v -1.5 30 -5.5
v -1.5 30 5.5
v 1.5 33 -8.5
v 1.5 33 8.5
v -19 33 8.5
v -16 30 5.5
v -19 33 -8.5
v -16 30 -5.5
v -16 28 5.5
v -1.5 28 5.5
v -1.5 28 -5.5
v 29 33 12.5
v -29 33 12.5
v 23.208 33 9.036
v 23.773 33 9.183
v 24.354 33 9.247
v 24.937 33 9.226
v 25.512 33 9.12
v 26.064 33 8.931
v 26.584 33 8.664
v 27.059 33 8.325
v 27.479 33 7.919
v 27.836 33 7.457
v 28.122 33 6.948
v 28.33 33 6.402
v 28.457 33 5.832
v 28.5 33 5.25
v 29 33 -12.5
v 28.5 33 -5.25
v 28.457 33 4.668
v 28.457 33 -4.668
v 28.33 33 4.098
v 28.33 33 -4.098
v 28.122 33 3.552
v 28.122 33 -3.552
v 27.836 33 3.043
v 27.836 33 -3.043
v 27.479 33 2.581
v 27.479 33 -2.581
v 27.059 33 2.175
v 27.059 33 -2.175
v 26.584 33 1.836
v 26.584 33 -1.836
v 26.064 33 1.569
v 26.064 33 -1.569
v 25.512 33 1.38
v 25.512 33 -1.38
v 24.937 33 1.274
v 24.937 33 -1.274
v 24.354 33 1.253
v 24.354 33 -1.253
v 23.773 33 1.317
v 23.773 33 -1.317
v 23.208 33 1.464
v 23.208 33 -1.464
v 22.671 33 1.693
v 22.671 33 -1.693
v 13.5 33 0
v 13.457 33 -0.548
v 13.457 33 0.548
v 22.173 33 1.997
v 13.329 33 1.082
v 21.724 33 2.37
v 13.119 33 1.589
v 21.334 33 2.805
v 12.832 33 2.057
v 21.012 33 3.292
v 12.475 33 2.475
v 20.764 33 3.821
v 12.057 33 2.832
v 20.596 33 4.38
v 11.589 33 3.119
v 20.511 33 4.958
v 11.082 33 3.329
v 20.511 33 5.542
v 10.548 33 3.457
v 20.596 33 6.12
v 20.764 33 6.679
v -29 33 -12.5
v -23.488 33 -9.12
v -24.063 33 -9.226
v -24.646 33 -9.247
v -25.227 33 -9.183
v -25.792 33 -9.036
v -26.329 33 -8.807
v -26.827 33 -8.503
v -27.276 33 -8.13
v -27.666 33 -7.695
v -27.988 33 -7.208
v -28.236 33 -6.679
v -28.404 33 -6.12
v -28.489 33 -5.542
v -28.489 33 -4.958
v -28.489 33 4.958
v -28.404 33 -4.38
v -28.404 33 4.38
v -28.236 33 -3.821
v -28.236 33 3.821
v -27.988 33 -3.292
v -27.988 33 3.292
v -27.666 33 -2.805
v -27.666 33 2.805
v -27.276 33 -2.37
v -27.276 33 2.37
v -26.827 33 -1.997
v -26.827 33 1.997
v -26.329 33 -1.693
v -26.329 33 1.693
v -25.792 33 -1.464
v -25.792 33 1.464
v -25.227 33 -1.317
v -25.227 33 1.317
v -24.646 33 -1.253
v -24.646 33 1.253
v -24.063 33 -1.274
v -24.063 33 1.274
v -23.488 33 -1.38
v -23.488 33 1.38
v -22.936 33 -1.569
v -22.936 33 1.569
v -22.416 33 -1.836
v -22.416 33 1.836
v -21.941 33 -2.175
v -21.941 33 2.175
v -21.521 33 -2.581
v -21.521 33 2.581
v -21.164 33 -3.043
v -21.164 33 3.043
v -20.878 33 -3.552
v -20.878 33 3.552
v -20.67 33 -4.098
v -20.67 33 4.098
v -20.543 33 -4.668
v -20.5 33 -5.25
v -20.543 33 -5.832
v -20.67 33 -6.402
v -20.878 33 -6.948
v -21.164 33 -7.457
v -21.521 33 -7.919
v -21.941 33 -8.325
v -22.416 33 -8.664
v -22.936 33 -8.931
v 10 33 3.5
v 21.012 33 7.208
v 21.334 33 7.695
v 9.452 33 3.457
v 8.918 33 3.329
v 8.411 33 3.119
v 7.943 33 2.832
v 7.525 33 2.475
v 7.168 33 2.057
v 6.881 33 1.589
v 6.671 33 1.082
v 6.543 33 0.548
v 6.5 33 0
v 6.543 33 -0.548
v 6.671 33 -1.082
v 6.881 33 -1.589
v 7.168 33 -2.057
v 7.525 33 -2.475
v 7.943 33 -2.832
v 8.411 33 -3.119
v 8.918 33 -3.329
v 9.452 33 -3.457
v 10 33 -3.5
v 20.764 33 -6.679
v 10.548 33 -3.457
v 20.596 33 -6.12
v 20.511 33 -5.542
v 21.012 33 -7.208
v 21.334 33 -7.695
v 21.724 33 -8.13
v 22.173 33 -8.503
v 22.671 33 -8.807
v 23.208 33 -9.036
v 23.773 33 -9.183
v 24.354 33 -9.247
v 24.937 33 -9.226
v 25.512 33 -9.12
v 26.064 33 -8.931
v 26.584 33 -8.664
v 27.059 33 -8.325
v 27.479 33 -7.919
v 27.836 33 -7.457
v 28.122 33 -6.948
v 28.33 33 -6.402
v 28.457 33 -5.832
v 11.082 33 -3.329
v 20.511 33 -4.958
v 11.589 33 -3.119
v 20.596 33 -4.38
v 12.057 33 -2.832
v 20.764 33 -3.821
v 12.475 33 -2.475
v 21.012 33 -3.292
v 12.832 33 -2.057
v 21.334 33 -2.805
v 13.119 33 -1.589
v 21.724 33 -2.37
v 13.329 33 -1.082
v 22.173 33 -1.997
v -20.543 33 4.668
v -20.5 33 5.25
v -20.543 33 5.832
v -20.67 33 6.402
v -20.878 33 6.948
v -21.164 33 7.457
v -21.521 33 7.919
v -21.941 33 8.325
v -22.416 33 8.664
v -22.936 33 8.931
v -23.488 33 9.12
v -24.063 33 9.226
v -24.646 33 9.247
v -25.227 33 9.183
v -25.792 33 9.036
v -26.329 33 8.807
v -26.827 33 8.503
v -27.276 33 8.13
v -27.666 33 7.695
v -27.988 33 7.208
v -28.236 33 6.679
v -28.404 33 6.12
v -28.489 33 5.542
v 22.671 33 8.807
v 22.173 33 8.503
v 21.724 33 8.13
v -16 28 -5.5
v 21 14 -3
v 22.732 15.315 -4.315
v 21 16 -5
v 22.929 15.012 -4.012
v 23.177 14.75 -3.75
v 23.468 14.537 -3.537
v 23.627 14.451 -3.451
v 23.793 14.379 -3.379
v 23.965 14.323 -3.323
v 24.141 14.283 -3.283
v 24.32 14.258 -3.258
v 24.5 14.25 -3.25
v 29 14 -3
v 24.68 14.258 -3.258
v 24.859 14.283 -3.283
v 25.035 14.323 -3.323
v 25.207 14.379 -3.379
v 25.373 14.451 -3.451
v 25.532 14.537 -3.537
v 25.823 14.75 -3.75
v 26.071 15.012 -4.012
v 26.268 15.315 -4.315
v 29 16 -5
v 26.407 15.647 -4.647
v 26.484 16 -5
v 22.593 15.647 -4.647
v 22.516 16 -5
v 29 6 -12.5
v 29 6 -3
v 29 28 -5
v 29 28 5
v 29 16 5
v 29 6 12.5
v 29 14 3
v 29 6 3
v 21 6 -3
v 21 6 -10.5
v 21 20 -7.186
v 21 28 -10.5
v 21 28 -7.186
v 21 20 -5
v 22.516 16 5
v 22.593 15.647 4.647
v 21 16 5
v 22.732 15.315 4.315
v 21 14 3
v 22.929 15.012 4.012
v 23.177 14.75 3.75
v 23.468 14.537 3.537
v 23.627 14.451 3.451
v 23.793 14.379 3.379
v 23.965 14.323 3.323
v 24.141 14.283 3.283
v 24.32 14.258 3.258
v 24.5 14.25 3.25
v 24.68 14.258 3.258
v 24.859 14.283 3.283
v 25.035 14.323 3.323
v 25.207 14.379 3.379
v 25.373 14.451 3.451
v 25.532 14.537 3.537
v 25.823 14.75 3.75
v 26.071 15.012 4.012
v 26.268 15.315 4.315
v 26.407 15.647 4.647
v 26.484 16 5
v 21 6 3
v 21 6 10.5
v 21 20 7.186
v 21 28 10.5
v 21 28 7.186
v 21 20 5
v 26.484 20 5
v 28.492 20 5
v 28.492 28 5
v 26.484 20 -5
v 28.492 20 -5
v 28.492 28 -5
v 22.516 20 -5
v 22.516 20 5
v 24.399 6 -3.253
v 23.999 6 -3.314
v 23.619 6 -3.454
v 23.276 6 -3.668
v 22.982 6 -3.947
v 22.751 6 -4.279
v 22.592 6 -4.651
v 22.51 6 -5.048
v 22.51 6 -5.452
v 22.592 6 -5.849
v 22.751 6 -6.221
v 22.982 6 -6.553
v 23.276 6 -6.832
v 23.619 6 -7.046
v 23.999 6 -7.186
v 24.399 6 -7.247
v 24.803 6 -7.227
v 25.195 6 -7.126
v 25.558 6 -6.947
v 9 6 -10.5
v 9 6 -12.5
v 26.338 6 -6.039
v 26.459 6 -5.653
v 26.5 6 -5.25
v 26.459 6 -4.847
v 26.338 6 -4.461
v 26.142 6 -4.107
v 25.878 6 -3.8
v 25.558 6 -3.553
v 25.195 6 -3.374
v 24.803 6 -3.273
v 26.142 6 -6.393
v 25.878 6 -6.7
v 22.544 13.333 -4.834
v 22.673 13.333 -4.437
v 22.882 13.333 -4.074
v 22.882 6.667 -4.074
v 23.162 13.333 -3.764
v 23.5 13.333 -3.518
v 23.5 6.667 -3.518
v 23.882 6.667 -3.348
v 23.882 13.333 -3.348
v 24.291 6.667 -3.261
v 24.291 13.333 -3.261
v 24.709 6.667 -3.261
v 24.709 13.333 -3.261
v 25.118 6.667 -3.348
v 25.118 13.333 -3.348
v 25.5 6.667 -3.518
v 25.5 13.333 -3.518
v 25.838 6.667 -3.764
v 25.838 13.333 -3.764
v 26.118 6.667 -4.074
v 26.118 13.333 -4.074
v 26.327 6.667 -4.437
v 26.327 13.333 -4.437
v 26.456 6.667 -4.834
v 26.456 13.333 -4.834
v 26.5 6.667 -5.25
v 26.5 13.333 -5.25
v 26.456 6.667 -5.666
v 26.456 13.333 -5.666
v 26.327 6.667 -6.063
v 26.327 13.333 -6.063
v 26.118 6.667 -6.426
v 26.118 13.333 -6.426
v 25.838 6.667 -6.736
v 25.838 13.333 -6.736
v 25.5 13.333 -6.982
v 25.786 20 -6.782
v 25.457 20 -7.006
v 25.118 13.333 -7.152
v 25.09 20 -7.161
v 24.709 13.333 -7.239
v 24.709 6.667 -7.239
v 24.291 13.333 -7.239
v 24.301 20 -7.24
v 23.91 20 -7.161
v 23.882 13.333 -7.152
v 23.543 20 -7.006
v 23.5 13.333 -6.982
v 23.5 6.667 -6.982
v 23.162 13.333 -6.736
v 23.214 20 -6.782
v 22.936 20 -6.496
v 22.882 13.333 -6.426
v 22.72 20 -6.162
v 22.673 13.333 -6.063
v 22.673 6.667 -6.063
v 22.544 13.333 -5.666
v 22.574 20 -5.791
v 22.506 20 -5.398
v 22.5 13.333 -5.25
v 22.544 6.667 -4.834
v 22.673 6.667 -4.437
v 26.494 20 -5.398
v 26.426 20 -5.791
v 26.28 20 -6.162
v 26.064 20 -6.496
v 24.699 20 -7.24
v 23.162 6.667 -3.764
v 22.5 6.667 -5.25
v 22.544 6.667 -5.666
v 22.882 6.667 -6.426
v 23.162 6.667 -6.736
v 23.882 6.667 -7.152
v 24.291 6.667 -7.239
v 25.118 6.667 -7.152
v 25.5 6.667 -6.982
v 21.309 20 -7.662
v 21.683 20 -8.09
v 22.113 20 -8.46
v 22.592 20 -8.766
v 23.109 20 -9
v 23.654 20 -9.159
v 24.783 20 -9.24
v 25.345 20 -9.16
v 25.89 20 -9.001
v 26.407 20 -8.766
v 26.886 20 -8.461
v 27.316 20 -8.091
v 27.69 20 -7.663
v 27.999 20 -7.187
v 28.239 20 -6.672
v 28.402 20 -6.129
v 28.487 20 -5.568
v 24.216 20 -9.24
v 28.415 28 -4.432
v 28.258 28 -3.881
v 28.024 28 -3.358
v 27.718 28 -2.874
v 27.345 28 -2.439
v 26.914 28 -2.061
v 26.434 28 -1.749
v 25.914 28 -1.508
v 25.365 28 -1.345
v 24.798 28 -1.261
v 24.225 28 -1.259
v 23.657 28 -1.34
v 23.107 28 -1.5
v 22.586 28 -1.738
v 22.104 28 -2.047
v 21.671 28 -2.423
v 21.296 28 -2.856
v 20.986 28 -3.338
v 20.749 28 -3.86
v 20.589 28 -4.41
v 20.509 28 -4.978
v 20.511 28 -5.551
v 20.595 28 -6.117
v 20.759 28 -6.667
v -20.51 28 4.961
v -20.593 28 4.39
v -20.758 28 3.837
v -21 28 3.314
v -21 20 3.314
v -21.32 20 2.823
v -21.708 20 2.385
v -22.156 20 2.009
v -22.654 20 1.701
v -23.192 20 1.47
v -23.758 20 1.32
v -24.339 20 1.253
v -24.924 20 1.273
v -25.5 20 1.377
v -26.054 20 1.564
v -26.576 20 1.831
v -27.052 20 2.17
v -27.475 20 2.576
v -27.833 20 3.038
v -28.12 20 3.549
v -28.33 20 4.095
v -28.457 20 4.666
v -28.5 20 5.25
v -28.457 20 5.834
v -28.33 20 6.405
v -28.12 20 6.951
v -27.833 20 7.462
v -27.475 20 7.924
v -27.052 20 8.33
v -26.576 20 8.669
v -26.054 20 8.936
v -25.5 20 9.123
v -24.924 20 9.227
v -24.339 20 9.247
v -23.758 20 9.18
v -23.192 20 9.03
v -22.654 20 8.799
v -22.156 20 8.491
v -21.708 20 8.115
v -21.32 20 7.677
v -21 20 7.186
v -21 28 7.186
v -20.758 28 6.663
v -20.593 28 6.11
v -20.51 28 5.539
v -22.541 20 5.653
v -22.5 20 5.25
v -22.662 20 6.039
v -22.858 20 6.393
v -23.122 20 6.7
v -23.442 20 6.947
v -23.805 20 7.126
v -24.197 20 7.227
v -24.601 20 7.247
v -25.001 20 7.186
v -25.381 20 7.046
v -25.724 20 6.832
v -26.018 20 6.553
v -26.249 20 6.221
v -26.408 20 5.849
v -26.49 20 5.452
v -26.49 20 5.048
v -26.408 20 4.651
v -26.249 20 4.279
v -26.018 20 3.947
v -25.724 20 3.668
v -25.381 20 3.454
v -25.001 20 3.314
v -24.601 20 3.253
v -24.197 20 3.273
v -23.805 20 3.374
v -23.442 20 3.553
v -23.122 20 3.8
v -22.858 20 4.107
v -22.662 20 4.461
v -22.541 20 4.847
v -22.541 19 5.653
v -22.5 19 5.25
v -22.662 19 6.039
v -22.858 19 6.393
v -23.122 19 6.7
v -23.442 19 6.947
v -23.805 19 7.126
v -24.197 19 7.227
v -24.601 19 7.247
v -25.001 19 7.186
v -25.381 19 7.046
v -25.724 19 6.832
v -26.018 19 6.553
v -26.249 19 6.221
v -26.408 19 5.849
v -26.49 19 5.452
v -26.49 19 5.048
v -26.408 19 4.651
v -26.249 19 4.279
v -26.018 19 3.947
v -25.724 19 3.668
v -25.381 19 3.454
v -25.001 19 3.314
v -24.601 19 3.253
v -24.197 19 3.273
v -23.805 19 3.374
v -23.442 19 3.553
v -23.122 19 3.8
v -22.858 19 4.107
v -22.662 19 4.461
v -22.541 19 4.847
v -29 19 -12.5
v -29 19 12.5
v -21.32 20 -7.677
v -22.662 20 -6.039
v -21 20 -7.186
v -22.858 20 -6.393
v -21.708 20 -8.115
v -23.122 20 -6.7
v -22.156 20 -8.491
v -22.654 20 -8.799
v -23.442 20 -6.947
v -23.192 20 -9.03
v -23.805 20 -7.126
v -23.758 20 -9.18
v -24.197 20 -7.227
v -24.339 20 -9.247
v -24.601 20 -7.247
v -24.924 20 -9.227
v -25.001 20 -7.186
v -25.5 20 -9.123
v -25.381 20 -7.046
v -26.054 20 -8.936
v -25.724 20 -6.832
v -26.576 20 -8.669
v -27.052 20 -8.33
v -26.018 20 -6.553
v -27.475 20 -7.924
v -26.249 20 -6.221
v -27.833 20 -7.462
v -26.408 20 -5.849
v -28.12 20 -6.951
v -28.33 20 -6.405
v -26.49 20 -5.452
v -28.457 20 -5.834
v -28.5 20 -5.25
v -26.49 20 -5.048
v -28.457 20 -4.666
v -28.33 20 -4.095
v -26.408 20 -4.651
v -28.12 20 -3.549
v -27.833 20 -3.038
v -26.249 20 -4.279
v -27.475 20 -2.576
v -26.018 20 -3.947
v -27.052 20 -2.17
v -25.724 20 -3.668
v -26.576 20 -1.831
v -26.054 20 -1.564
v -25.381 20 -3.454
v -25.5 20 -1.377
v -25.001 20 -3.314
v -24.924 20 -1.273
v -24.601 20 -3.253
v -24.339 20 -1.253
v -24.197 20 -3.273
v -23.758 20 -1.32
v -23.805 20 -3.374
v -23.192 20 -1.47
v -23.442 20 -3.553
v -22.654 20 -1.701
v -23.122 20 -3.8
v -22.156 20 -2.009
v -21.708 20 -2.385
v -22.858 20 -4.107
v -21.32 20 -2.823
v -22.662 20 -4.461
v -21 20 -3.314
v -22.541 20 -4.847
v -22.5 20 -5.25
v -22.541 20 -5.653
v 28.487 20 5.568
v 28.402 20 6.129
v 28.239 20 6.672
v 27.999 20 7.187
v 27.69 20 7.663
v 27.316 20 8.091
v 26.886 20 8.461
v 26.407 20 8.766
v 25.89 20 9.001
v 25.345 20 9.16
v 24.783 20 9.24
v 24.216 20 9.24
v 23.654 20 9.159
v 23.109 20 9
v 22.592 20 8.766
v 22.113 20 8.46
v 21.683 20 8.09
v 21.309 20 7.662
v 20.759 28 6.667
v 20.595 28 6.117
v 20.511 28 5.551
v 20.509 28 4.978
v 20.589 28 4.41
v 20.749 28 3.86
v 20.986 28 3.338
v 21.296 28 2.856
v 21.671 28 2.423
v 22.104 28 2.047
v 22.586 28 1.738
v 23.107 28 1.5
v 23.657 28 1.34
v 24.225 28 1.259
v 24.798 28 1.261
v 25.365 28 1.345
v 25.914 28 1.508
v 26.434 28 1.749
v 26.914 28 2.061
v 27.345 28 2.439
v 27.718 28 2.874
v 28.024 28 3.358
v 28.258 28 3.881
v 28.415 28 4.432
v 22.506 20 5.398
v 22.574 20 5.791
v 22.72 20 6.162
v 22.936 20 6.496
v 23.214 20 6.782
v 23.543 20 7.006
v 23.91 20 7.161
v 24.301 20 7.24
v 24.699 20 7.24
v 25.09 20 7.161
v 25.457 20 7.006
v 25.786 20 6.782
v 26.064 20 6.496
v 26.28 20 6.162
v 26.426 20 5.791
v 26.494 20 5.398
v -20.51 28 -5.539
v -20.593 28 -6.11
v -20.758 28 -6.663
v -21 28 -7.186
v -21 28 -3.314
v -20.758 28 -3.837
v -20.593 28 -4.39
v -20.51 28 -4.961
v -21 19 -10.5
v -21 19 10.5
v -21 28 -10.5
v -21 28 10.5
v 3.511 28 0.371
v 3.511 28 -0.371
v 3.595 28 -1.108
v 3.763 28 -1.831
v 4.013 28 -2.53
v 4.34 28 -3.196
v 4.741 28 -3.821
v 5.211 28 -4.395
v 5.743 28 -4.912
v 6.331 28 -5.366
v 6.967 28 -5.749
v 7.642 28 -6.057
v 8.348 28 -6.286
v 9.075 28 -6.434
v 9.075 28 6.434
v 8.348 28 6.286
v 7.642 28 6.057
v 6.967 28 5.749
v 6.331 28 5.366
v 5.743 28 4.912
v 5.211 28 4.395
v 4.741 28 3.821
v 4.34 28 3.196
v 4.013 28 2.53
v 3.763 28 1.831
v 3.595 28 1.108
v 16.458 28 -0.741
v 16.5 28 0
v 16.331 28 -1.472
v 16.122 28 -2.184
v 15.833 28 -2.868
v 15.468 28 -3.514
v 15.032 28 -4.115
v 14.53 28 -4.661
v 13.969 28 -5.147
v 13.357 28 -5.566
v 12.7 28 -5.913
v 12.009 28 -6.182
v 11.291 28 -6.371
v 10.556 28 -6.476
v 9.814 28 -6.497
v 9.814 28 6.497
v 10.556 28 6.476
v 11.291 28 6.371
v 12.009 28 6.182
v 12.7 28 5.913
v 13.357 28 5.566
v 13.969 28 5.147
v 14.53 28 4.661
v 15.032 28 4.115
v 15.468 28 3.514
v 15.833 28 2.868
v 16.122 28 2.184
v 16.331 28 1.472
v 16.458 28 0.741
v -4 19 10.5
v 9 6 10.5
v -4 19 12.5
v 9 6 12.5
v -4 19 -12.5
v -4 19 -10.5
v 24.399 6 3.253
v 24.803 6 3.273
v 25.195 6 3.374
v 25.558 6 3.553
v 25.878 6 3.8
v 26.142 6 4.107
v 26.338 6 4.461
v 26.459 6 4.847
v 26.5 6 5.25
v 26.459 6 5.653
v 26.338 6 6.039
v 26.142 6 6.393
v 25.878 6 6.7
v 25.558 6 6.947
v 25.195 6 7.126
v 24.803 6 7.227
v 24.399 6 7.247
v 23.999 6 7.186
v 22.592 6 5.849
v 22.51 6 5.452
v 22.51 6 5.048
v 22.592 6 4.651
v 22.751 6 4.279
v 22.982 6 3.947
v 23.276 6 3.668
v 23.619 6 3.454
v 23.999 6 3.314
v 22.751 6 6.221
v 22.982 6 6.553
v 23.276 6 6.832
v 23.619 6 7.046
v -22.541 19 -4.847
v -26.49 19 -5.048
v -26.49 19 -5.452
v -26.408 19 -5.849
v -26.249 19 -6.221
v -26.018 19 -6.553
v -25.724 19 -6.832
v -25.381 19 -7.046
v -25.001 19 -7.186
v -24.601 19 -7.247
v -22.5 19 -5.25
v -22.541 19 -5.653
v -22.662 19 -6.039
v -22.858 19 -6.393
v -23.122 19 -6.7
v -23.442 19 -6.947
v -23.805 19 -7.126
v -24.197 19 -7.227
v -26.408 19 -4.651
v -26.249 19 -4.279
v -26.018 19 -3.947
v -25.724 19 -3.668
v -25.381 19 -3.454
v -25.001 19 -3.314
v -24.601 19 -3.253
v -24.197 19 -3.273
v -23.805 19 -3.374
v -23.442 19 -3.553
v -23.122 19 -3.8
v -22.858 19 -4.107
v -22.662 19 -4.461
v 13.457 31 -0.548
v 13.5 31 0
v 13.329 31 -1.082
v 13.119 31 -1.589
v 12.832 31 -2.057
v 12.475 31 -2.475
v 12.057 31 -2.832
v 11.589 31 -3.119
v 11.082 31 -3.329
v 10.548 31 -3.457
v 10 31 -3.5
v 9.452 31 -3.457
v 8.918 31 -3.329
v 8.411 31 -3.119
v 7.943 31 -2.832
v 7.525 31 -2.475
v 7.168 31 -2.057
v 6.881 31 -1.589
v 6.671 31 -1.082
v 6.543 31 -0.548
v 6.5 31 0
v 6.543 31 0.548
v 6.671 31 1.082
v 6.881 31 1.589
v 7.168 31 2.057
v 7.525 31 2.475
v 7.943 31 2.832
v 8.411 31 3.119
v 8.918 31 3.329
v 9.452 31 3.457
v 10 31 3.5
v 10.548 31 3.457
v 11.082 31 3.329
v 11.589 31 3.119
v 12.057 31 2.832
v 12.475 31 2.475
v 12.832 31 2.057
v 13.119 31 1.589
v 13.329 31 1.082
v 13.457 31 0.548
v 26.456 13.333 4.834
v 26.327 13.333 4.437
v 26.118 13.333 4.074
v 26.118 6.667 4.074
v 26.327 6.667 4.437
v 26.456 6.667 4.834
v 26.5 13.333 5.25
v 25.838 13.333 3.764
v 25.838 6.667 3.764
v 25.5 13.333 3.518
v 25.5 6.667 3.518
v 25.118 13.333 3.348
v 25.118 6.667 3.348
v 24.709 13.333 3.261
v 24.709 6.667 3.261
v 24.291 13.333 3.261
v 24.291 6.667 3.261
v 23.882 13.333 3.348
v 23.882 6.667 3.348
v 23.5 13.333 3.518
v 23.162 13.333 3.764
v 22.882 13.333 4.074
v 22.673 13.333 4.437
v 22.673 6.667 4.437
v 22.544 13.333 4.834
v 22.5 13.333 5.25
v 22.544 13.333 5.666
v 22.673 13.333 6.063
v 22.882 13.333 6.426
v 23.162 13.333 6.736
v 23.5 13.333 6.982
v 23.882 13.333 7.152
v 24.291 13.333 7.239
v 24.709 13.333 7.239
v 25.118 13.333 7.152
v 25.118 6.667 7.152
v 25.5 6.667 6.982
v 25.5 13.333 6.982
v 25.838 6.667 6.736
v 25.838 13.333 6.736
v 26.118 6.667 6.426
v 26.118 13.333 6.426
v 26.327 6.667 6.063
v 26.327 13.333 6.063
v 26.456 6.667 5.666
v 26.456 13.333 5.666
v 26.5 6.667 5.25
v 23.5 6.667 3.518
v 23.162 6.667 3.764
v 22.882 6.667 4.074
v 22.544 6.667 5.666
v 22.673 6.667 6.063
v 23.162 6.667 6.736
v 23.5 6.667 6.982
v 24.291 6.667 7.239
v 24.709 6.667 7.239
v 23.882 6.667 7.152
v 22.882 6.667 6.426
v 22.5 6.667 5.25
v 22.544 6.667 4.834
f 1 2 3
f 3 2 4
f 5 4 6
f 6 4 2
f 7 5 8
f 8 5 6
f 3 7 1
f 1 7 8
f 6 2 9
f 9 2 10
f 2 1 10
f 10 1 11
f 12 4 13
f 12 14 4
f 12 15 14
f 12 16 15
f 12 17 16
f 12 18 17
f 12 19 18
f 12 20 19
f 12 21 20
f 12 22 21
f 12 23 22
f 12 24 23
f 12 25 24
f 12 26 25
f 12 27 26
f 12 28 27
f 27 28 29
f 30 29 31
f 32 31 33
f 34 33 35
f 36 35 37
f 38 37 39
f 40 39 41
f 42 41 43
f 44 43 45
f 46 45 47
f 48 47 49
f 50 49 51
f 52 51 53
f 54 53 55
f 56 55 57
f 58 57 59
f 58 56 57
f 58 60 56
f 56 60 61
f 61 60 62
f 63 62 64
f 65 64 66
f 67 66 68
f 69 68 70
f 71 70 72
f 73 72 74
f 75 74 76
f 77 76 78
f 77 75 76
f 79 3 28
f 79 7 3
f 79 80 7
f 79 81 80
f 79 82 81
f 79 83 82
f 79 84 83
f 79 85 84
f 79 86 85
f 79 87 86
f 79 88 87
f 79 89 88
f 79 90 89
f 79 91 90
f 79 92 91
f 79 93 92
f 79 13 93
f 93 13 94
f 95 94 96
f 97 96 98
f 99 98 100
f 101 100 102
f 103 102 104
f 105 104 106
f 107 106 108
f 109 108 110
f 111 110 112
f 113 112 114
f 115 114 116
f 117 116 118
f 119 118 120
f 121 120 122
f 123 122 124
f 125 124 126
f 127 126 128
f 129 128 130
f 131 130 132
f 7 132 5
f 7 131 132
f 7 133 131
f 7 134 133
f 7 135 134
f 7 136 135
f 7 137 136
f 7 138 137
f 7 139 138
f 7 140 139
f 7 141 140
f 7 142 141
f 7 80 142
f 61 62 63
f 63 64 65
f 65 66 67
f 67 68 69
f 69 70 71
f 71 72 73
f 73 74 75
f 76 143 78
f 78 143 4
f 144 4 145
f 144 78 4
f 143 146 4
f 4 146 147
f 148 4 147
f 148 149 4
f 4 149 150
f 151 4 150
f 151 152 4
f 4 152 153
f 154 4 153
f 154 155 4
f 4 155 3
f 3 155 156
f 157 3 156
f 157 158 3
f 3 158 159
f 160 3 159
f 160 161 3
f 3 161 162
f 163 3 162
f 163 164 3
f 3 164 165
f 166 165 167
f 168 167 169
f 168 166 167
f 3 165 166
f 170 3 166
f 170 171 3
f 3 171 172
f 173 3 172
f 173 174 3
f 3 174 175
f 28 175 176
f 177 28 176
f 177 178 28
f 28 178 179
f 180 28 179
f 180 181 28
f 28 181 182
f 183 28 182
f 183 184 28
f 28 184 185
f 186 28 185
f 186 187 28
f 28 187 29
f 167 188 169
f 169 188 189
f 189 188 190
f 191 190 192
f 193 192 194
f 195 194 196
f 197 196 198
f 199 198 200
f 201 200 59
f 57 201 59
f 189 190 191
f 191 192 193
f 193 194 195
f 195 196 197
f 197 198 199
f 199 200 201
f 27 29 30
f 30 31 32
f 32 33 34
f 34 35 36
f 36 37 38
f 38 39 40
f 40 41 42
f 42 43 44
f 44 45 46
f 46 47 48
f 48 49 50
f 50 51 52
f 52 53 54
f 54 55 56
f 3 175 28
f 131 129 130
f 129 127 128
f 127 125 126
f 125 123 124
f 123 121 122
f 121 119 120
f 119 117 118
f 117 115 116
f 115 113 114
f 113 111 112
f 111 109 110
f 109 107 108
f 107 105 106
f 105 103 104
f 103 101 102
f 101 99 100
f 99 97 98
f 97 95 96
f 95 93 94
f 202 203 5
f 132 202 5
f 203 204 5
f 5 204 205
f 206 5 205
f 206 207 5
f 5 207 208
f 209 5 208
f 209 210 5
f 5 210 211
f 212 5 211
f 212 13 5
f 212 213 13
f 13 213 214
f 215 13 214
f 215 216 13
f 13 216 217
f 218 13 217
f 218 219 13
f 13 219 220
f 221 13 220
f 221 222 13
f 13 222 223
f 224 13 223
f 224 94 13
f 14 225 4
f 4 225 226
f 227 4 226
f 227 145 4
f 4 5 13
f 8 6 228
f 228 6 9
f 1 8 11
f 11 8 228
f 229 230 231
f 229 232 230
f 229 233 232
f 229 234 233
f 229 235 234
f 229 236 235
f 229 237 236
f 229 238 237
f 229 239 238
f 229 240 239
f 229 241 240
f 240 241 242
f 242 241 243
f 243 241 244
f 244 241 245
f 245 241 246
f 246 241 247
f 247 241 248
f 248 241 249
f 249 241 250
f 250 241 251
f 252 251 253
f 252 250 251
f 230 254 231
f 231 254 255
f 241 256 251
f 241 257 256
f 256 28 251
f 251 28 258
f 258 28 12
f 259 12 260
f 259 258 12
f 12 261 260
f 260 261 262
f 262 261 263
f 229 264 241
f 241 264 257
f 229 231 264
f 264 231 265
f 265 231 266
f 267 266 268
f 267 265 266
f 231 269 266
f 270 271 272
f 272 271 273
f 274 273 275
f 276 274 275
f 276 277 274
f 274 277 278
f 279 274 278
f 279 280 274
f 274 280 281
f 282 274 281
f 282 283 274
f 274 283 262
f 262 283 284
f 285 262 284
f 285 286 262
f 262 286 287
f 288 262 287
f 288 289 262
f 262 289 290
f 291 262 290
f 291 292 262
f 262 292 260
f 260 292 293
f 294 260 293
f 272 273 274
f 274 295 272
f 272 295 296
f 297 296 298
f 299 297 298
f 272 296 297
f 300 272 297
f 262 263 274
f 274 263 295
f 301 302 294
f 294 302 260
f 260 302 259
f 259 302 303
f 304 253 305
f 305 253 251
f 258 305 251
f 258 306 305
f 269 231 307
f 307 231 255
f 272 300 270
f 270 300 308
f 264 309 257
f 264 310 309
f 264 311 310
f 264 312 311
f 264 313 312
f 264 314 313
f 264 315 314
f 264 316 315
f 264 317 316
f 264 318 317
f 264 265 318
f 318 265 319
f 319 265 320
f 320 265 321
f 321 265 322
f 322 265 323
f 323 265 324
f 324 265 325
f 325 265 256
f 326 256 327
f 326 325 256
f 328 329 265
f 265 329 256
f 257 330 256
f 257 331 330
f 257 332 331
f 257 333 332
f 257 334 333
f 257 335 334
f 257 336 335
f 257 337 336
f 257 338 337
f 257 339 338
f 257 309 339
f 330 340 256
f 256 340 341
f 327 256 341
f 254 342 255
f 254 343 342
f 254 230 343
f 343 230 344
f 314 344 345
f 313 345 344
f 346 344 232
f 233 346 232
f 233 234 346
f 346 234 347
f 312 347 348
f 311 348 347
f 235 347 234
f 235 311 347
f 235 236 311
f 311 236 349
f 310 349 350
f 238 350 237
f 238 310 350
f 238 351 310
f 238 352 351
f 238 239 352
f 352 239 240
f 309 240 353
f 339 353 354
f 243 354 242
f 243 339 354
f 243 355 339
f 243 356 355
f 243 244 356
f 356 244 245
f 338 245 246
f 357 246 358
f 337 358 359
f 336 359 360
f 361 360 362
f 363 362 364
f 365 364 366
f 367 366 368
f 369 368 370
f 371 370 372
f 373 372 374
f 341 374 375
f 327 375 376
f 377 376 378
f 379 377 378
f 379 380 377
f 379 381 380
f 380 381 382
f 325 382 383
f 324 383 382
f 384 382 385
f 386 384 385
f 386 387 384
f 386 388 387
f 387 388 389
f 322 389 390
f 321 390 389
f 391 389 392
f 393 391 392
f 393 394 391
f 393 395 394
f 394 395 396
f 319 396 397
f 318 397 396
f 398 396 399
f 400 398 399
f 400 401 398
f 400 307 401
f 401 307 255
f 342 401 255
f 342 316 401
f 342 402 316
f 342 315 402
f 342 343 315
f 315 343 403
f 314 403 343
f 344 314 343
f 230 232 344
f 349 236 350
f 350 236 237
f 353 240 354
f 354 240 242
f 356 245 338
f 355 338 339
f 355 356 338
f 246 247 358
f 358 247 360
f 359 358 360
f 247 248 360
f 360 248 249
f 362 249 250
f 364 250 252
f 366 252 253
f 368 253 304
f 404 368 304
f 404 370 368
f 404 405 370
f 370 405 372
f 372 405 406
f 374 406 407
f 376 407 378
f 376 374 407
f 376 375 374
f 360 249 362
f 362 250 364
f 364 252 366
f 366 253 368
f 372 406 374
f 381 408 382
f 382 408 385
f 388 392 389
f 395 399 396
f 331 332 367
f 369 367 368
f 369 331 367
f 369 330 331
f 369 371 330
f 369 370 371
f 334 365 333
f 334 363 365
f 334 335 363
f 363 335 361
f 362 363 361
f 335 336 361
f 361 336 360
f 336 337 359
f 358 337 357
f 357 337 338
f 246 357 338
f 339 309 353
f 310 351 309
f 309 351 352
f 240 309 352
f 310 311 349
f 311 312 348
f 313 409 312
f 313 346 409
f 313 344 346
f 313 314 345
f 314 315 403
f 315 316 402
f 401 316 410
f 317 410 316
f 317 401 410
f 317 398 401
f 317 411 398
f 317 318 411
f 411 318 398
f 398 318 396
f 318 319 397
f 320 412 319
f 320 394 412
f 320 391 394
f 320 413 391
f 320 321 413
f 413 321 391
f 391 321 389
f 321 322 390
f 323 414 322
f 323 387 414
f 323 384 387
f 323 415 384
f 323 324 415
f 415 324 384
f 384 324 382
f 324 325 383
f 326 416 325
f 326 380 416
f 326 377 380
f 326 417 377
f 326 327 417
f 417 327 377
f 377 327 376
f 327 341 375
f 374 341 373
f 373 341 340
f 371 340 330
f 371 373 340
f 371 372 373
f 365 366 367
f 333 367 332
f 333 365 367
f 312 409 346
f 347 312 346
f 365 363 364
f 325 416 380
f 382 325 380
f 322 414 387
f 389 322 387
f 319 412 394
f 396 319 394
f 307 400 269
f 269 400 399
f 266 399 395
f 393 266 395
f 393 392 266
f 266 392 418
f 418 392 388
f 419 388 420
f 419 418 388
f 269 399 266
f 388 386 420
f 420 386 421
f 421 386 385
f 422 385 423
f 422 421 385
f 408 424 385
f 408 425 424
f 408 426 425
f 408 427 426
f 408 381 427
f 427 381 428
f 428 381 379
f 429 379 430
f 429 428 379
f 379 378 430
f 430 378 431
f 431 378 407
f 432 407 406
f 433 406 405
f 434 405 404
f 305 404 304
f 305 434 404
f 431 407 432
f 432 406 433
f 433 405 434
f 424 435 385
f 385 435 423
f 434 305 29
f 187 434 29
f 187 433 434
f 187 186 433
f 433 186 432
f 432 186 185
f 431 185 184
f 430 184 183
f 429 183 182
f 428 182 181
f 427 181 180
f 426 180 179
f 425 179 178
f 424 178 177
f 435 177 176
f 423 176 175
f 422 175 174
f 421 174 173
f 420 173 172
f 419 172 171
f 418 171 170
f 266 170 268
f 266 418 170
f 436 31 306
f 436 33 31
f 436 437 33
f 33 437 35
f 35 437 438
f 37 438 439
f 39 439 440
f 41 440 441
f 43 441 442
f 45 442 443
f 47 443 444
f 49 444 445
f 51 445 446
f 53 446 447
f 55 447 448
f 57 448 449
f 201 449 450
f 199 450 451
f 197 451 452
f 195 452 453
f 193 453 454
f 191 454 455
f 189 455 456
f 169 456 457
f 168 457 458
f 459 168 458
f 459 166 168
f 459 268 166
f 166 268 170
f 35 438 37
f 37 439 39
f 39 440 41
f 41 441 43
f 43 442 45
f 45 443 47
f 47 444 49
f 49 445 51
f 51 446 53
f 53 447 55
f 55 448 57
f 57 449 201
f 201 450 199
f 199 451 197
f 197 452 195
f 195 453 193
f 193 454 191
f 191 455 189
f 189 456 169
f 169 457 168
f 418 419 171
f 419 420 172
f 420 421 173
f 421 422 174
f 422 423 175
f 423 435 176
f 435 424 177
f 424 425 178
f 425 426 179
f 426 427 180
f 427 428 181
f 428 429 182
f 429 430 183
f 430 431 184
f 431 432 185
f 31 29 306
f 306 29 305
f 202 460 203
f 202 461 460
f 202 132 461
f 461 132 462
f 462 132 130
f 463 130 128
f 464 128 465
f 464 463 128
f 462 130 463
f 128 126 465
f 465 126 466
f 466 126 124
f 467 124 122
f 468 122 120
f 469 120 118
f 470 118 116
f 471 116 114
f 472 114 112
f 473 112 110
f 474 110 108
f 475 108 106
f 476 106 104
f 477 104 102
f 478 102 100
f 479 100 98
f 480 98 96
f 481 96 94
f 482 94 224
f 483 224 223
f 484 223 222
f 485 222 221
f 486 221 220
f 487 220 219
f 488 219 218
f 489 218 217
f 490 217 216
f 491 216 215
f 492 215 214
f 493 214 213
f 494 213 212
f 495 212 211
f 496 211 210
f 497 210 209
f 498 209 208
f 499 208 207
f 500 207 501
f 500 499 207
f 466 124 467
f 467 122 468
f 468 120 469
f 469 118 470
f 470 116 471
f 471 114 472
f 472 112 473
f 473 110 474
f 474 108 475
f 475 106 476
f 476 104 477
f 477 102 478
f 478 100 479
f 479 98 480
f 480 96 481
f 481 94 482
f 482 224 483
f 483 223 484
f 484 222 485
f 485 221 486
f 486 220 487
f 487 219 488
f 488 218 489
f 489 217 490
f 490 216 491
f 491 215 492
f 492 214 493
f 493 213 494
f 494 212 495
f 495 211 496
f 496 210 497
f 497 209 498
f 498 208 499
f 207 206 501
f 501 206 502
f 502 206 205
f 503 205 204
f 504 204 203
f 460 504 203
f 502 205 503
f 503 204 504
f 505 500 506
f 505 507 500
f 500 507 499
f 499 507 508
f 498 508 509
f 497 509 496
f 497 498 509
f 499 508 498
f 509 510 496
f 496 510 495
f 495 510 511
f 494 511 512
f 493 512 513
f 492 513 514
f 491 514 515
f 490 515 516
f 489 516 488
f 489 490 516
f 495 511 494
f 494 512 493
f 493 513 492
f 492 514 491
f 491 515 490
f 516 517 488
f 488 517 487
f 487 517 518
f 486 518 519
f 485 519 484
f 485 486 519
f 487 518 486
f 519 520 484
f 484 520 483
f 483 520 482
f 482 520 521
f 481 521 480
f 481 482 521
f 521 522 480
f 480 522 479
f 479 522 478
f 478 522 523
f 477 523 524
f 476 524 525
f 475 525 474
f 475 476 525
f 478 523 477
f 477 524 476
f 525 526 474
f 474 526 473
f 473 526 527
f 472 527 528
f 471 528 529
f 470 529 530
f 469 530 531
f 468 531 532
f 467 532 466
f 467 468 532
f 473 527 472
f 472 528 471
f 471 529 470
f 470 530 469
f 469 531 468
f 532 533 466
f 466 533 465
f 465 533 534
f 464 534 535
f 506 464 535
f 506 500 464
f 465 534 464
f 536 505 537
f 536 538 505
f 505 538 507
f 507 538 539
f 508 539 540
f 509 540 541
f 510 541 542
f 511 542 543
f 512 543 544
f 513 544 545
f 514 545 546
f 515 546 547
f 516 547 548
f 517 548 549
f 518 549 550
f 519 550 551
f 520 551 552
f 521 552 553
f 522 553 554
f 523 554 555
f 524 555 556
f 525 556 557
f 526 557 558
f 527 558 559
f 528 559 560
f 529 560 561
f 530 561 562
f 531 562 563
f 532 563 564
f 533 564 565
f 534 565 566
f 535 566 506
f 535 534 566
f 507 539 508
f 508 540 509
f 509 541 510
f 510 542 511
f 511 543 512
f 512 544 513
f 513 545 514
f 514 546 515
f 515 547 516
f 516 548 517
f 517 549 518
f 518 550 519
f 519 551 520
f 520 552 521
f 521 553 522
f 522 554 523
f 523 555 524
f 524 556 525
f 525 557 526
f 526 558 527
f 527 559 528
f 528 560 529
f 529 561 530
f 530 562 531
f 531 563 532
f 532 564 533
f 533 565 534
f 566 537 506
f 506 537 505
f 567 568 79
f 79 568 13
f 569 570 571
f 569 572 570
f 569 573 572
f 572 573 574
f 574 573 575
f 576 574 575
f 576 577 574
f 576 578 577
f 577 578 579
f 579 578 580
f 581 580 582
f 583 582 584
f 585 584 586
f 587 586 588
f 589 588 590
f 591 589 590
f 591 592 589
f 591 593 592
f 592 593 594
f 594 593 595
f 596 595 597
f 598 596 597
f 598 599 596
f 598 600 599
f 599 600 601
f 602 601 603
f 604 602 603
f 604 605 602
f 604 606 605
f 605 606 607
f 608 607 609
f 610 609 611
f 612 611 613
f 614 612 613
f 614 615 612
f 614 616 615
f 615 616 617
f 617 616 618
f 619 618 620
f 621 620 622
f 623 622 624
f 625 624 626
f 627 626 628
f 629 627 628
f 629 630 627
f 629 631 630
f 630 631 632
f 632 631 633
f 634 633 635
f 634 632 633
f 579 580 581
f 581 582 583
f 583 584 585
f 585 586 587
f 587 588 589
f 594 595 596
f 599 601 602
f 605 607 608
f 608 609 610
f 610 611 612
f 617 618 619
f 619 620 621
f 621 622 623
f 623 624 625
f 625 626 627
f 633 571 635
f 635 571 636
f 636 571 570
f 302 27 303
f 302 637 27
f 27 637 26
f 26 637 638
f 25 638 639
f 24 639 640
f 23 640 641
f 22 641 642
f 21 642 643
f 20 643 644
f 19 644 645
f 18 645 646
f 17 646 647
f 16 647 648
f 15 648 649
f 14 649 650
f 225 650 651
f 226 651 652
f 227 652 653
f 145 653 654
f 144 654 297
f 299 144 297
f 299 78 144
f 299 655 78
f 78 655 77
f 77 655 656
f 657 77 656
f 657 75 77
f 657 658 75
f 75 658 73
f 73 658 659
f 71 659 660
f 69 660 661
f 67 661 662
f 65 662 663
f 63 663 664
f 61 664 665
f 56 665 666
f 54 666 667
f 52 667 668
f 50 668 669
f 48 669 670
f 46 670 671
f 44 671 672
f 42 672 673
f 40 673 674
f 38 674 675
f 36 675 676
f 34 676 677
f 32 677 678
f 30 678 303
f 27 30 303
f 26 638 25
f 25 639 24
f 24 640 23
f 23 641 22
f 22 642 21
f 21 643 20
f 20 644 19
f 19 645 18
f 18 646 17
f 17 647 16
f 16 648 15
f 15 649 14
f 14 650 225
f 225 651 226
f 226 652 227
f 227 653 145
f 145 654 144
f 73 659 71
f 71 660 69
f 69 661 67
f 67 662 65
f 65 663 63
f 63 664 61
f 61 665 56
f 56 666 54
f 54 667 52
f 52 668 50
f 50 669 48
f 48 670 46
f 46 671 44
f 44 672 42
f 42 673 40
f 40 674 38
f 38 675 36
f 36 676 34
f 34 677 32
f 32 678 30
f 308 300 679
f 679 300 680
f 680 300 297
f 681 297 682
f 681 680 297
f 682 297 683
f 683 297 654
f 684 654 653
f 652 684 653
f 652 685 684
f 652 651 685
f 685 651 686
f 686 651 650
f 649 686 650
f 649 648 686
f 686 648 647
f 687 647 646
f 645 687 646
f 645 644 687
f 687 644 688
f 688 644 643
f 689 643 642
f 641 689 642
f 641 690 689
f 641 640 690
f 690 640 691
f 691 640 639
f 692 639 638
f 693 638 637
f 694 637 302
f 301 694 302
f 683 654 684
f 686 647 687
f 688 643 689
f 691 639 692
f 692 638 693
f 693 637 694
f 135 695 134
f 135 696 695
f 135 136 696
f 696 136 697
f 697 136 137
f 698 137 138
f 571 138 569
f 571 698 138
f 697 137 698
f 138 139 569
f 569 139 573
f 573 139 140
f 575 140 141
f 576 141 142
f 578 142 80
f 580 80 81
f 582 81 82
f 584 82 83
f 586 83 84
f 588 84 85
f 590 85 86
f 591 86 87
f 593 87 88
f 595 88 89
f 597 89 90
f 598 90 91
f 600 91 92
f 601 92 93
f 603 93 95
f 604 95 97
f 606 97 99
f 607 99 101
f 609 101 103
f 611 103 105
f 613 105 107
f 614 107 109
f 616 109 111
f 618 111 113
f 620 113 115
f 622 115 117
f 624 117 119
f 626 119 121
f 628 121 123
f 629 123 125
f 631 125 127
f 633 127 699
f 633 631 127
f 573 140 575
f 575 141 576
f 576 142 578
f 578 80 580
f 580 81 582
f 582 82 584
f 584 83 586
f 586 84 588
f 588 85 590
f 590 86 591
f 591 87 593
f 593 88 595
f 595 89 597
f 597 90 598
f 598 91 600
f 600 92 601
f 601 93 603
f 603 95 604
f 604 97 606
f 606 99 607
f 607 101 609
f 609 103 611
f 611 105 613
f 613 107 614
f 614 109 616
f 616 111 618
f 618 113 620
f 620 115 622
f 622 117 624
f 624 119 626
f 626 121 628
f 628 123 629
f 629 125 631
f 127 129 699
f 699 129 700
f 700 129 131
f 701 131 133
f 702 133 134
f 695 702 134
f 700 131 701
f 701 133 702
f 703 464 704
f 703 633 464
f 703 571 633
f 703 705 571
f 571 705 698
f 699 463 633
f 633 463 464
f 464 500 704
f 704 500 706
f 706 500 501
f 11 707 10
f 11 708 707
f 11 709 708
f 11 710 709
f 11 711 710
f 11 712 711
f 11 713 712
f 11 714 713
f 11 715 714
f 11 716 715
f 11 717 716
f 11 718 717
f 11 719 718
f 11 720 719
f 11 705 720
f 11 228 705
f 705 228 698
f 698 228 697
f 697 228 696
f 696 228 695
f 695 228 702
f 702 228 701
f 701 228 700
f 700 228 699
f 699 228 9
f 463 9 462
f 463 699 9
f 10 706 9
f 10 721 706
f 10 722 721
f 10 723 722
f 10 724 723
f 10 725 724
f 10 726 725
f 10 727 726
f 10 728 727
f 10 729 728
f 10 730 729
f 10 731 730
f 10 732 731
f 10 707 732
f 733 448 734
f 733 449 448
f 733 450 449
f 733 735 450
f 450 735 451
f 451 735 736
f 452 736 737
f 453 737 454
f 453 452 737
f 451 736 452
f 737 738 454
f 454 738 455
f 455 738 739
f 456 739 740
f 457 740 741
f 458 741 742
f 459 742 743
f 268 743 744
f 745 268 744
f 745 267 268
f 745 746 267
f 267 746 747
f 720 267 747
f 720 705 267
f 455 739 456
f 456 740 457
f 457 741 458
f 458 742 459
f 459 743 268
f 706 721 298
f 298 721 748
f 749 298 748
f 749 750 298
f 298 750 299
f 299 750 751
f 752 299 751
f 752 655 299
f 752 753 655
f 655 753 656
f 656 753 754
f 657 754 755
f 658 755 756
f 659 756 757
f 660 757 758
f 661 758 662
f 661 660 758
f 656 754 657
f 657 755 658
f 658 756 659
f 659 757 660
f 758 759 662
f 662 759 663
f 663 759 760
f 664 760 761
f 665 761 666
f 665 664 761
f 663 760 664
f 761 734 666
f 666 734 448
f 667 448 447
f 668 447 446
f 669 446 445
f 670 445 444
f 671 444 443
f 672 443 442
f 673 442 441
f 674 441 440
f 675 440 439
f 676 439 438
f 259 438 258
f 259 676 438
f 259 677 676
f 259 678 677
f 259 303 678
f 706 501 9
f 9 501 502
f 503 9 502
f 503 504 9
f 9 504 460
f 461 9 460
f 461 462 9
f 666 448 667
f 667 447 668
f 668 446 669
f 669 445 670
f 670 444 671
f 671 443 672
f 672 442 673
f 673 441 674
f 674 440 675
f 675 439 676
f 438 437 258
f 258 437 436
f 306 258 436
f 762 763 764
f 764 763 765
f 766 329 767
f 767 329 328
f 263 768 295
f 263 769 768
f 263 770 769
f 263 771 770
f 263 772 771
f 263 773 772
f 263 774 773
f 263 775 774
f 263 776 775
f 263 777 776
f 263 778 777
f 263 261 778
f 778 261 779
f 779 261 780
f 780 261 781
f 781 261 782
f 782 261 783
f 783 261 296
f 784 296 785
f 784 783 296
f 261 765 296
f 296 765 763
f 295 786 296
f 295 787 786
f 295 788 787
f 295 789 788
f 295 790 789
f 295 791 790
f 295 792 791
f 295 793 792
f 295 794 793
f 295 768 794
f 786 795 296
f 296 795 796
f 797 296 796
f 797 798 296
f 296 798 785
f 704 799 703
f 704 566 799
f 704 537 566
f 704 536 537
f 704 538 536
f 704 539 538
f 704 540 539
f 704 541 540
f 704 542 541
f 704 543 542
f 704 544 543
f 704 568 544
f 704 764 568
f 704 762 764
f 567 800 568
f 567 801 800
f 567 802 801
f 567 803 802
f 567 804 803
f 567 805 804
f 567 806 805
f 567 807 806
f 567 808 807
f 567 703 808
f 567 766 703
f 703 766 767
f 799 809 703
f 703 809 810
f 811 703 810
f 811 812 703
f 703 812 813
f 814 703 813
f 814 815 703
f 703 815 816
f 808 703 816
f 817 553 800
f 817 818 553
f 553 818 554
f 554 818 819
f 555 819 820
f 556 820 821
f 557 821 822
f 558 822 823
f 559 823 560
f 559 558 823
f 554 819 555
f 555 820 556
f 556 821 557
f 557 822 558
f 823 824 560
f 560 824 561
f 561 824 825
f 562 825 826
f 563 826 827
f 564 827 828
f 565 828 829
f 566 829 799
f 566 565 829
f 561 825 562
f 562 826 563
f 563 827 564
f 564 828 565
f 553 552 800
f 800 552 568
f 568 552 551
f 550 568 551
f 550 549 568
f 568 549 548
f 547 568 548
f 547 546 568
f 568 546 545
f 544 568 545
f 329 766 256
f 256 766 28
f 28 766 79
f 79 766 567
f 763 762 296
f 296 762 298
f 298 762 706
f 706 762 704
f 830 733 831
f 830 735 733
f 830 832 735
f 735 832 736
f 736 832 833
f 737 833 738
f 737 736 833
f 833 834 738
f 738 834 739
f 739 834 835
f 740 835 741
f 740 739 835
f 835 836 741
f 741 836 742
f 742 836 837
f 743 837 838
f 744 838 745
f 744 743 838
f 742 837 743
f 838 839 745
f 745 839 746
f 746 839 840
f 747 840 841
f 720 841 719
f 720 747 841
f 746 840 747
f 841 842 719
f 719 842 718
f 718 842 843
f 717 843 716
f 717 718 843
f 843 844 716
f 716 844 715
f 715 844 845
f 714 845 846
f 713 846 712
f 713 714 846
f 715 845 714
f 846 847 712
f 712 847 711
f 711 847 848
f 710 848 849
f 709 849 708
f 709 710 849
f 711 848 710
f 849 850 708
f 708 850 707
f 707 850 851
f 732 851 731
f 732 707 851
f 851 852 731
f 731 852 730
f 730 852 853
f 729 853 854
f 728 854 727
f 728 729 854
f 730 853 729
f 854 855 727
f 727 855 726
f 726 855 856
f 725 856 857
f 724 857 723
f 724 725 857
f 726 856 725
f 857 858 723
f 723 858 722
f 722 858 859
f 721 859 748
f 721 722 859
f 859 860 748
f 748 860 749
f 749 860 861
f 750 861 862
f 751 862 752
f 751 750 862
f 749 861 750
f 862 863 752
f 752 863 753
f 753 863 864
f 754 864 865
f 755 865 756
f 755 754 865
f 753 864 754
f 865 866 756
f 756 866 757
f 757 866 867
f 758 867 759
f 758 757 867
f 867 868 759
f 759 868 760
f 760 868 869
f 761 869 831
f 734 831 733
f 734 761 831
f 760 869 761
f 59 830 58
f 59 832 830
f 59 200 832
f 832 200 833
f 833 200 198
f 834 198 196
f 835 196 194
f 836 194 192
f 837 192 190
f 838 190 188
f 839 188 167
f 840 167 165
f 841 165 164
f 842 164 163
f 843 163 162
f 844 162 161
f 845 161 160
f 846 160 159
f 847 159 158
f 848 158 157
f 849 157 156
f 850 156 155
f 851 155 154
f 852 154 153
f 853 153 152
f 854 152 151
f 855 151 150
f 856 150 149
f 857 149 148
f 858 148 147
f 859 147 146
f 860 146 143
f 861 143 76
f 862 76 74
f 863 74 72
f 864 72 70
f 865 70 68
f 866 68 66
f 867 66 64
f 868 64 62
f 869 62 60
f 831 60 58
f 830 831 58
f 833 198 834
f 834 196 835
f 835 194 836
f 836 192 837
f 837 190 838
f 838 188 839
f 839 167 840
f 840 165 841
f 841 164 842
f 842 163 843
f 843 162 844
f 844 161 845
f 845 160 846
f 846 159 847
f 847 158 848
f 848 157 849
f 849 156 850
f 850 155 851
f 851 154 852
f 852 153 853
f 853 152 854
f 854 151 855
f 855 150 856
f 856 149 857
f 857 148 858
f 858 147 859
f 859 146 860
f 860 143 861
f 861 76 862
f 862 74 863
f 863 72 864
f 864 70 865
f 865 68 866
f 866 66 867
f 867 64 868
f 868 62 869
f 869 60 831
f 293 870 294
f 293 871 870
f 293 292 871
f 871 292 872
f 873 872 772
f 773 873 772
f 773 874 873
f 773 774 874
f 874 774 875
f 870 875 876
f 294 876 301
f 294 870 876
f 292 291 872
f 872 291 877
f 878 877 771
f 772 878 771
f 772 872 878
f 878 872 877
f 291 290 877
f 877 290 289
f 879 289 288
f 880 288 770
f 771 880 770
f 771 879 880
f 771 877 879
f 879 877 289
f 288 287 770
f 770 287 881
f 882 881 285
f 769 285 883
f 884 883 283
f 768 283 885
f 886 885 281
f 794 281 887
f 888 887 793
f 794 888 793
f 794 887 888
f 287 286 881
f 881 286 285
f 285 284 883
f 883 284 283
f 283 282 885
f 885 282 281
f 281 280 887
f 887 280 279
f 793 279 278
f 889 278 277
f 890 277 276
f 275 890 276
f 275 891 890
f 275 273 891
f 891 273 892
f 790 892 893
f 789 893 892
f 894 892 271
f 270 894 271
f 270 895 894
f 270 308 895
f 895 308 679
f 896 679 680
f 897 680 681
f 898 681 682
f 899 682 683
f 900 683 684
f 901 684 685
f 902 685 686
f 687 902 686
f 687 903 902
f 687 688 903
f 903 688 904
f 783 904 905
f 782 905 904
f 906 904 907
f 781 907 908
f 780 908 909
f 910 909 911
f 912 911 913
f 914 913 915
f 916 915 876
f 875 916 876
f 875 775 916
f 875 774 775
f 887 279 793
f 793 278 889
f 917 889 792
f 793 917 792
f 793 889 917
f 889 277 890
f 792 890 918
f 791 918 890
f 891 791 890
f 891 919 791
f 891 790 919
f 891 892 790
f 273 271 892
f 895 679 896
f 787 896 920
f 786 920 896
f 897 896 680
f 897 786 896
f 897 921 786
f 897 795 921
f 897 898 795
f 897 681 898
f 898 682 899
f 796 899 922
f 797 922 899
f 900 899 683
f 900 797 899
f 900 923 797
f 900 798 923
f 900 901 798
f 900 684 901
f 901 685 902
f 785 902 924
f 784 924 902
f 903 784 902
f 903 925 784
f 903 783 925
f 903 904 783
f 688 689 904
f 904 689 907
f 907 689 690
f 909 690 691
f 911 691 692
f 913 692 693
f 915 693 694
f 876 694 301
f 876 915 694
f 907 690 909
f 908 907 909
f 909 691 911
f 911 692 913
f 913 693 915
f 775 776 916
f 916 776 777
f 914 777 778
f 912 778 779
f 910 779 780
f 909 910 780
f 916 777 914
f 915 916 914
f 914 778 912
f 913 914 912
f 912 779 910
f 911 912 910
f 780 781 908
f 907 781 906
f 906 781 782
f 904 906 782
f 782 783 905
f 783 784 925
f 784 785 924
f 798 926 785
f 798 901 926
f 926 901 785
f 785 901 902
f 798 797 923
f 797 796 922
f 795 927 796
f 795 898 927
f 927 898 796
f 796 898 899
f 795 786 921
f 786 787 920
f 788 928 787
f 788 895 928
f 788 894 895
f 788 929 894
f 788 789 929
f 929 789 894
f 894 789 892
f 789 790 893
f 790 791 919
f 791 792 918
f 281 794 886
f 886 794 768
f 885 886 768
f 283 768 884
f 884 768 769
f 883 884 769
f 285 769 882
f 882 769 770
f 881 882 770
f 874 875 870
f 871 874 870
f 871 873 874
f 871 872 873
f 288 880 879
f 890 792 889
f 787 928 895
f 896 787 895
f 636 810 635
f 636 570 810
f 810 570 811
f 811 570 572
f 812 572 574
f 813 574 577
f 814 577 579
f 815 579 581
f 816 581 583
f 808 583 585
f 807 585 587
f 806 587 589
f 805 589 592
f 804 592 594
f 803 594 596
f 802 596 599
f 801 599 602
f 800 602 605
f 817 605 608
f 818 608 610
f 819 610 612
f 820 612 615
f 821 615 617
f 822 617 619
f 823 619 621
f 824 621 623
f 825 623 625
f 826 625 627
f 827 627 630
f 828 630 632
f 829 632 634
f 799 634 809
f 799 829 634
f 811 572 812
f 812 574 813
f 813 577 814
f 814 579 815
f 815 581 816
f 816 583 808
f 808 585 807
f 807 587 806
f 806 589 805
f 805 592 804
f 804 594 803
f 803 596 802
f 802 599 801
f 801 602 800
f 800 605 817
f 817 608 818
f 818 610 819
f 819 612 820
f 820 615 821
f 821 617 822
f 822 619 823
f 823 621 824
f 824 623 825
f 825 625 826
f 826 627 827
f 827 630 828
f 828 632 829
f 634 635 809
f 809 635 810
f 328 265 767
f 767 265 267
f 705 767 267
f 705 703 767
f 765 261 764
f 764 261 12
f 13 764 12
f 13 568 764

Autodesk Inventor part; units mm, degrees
ref_plane "YZ Plane" through (0, 0, 0) normal (1, 0, 0) x (0, 1, 0)
ref_plane "XZ Plane" through (0, 0, 0) normal (0, 1, 0) x (-1, 0, 0)
ref_plane "XY Plane" through (0, 0, 0) normal (0, 0, 1) x (1, 0, 0)
sketch "Esquisse1" plane through (0, 0, 0) normal (0, 1, 0) x (-1, 0, 0)
  line L0 (21, 10.5) -> (-21, 10.5)
  line L1 (-21, 10.5) -> (-21, -10.5)
  line L2 (-21, -10.5) -> (21, -10.5)
  line L3 (21, -10.5) -> (21, 10.5)
  line L4 (29, 12.5) -> (-29, 12.5)
  line L5 (-29, 12.5) -> (-29, -12.5)
  line L6 (-29, -12.5) -> (29, -12.5)
  line L7 (29, -12.5) -> (29, 12.5)
  point P0 (0, 0)
  dimension "d0" = 21
  dimension "d1" = 10.5
  dimension "d2" = 42
  dimension "d3" = 21
  dimension "d4" = 2
  dimension "d5" = 2
  dimension "d6" = 8
  dimension "d7" = 8
extrude "Extrusion1" add sketch "Esquisse1" along normal blind 28
sketch "Esquisse2" plane through (0, 28, 0) normal (0, 1, 0) x (1, 0, 0)
  line L0 (-29, -12.5) -> (29, -12.5)
  line L1 (29, -12.5) -> (29, 12.5)
  line L2 (29, 12.5) -> (-29, 12.5)
  line L3 (-29, 12.5) -> (-29, -12.5)
  point P0 (0, 0)
extrude "Extrusion2" add sketch "Esquisse2" along normal blind 5
sketch "Esquisse3" plane through (0, 0, 0) normal (0, -1, 0) x (1, 0, 0)
  line L0 (-28, 10.5) -> (-21, 0) construction
  line L1 (-21, 0) -> (-28, -10.5) construction
  line L2 (-21, -10.5) -> (-28, 0) construction
  line L3 (-28, 0) -> (-21, 10.5) construction
  line L4 (21, 10.5) -> (28, 0) construction
  line L5 (21, -10.5) -> (28, 0) construction
  line L6 (28, -10.5) -> (21, 0) construction
  line L7 (21, 0) -> (28, 10.5) construction
  circle A0 centre (24.5, 5.25) radius 2
  circle A1 centre (24.5, -5.25) radius 2
  circle A2 centre (-24.5, 5.25) radius 2
  circle A3 centre (-24.5, -5.25) radius 2
  line L8 (-21, 10.5) -> (-28, 10.5)
  line L9 (-28, 10.5) -> (-28, -10.5)
  line L10 (-28, -10.5) -> (-21, -10.5)
  line L11 (-21, -10.5) -> (-21, 10.5)
  line L12 (28, 10.5) -> (21, 10.5)
  line L13 (21, 10.5) -> (21, -10.5)
  line L14 (21, -10.5) -> (28, -10.5)
  line L15 (28, -10.5) -> (28, 10.5)
  line L16 (21, 10.5) -> (21, -10.5) projected
  line L17 (21, -10.5) -> (-21, -10.5) projected
  line L18 (-21, 10.5) -> (21, 10.5) projected
  line L19 (-21, -10.5) -> (-21, 10.5) projected
  point P0 (0, 0)
  dimension "d12" = 4
  dimension "d13" = 4
  dimension "d14" = 4
  dimension "d15" = 4
  dimension "d25" = 7
  dimension "d26" = 7
extrude "Extrusion3" cut sketch "Esquisse3" against normal through all contours A0 | A1 | A2 | A3
sketch "Esquisse4" plane through (0, 28, 0) normal (0, -1, 0) x (1, 0, 0)
  line L0 (-21, 10.5) -> (10, 10.5)
  line L1 (10, 10.5) -> (10, -10.5)
  line L2 (10, -10.5) -> (-21, -10.5)
  line L3 (-21, -10.5) -> (-21, 10.5)
  line L4 (21, -10.5) -> (-21, -10.5) projected
  circle A0 centre (10, 0) radius 3.5
  line L5 (21, 10.5) -> (21, -10.5) projected
  point P0 (0, 0)
  dimension "d19" = 7
  dimension "d50" = 11
extrude "Extrusion4" cut sketch "Esquisse4" against normal through all contours A0 L1 | L1 A0
chamfer "Chanfrein1" distance 3 angle 45 1 edges at (6.5, 28, 0)
sketch "Esquisse5" plane through (-29, 0, 12.5) normal (0, 0, 1) x (1, 0, 0)
  line L0 (0, 0) -> (25, 0)
  line L1 (25, 0) -> (25, 19)
  line L2 (25, 19) -> (0, 19)
  line L3 (0, 19) -> (0, 0)
  line L4 (25, 0) -> (58, 0)
  line L5 (58, 0) -> (58, 6)
  line L6 (58, 6) -> (25, 6)
  line L7 (25, 6) -> (25, 0)
  line L8 (25, 19) -> (38, 6)
  point P0 (29, 0)
  dimension "d27" = 19
  dimension "d29" = 6
  dimension "d30" = 45
  dimension "d33" = 20
extrude "Extrusion5" cut sketch "Esquisse5" against normal through all
sketch "Esquisse6" plane through (0, 33, 0) normal (0, 1, 0) x (1, 0, 0)
  circle A0 centre (-24.5, -5.25) radius 4
  circle A1 centre (-24.5, 5.25) radius 4
  circle A2 centre (24.5, -5.25) radius 4
  circle A3 centre (24.5, 5.25) radius 4
  circle A4 centre (24.5, 5.25) radius 2 projected
  circle A5 centre (24.5, -5.25) radius 2 projected
  circle A6 centre (-24.5, -5.25) radius 2 projected
  circle A7 centre (-24.5, 5.25) radius 2 projected
  point P0 (0, 0)
  dimension "d34" = 8
  dimension "d35" = 8
  dimension "d36" = 8
  dimension "d37" = 8
extrude "Extrusion6" cut sketch "Esquisse6" against normal blind 13
sketch "Esquisse7" plane through (29, 33, 12.5) normal (1, 0, 0) x (0, 0, -1)
  line L0 (7.5, -27) -> (17.5, -27)
  line L1 (17.5, -27) -> (17.5, -5)
  line L2 (17.5, -5) -> (7.5, -5)
  line L3 (7.5, -5) -> (7.5, -27)
  line L4 (0, -27) -> (25, -27) projected
  line L5 (15.8135, -5) -> (9.1865, -5) projected
  line L6 (17.5, -27) -> (15.5, -27)
  line L7 (15.5, -27) -> (15.5, -17)
  line L8 (15.5, -17) -> (17.5, -17)
  line L9 (17.5, -17) -> (17.5, -27)
  line L10 (7.5, -27) -> (9.5, -27)
  line L11 (9.5, -27) -> (9.5, -17)
  line L12 (9.5, -17) -> (7.5, -17)
  line L13 (7.5, -17) -> (7.5, -27)
  point P0 (12.5, -33)
  dimension "d40" = 10
  dimension "d41" = 5
  dimension "d44" = 6
  dimension "d45" = 3
  dimension "d46" = 10
extrude "Extrusion7" cut sketch "Esquisse7" against normal up to next contours L11 L12 L3 L2 L1 L8 L7 L0
chamfer "Chanfrein2" distance 2 angle 45 2 edges at (25, 16, 3) (25, 16, -3)
sketch "Esquisse8" plane through (0, 28, 0) normal (0, -1, 0) x (1, 0, 0)
  line L0 (-16, -5.5) -> (-1.5, -5.5)
  line L1 (-1.5, -5.5) -> (-1.5, 5.5)
  line L2 (-1.5, 5.5) -> (-16, 5.5)
  line L3 (-16, 5.5) -> (-16, -5.5)
  line L4 (-21, 3.3135) -> (-21, -3.3135) projected
  line L5 (-4, 10.5) -> (-21, 10.5) projected
  line L6 (-21, -10.5) -> (-4, -10.5) projected
  circle A0 centre (10, 0) radius 6.5 projected
  point P0 (0, 0)
  dimension "d51" = 5
  dimension "d52" = 5
  dimension "d53" = 5
  dimension "d54" = 5
extrude "Extrusion8" cut sketch "Esquisse8" against normal through all contours L3 L2 L1 L0
chamfer "Chanfrein3" distance 3 angle 45 4 edges at (-8.75, 33, 5.5) (-1.5, 33, 0) (-8.75, 33, -5.5) (-16, 33, 0)
equation "\"d1\" = 0.5 * d0"
equation "\"d3\" = 0.5 * d2"
equation "\"d13\" = d12"
equation "\"d14\" = d12"
equation "\"d15\" = d12"
equation "\"d35\" = d34"
equation "\"d36\" = d34"
equation "\"d37\" = d34"
equation "\"d41\" = 0.5 * d40"
equation "\"d45\" = 0.5 * d44"
properties part number "forearm_anti_axe"
